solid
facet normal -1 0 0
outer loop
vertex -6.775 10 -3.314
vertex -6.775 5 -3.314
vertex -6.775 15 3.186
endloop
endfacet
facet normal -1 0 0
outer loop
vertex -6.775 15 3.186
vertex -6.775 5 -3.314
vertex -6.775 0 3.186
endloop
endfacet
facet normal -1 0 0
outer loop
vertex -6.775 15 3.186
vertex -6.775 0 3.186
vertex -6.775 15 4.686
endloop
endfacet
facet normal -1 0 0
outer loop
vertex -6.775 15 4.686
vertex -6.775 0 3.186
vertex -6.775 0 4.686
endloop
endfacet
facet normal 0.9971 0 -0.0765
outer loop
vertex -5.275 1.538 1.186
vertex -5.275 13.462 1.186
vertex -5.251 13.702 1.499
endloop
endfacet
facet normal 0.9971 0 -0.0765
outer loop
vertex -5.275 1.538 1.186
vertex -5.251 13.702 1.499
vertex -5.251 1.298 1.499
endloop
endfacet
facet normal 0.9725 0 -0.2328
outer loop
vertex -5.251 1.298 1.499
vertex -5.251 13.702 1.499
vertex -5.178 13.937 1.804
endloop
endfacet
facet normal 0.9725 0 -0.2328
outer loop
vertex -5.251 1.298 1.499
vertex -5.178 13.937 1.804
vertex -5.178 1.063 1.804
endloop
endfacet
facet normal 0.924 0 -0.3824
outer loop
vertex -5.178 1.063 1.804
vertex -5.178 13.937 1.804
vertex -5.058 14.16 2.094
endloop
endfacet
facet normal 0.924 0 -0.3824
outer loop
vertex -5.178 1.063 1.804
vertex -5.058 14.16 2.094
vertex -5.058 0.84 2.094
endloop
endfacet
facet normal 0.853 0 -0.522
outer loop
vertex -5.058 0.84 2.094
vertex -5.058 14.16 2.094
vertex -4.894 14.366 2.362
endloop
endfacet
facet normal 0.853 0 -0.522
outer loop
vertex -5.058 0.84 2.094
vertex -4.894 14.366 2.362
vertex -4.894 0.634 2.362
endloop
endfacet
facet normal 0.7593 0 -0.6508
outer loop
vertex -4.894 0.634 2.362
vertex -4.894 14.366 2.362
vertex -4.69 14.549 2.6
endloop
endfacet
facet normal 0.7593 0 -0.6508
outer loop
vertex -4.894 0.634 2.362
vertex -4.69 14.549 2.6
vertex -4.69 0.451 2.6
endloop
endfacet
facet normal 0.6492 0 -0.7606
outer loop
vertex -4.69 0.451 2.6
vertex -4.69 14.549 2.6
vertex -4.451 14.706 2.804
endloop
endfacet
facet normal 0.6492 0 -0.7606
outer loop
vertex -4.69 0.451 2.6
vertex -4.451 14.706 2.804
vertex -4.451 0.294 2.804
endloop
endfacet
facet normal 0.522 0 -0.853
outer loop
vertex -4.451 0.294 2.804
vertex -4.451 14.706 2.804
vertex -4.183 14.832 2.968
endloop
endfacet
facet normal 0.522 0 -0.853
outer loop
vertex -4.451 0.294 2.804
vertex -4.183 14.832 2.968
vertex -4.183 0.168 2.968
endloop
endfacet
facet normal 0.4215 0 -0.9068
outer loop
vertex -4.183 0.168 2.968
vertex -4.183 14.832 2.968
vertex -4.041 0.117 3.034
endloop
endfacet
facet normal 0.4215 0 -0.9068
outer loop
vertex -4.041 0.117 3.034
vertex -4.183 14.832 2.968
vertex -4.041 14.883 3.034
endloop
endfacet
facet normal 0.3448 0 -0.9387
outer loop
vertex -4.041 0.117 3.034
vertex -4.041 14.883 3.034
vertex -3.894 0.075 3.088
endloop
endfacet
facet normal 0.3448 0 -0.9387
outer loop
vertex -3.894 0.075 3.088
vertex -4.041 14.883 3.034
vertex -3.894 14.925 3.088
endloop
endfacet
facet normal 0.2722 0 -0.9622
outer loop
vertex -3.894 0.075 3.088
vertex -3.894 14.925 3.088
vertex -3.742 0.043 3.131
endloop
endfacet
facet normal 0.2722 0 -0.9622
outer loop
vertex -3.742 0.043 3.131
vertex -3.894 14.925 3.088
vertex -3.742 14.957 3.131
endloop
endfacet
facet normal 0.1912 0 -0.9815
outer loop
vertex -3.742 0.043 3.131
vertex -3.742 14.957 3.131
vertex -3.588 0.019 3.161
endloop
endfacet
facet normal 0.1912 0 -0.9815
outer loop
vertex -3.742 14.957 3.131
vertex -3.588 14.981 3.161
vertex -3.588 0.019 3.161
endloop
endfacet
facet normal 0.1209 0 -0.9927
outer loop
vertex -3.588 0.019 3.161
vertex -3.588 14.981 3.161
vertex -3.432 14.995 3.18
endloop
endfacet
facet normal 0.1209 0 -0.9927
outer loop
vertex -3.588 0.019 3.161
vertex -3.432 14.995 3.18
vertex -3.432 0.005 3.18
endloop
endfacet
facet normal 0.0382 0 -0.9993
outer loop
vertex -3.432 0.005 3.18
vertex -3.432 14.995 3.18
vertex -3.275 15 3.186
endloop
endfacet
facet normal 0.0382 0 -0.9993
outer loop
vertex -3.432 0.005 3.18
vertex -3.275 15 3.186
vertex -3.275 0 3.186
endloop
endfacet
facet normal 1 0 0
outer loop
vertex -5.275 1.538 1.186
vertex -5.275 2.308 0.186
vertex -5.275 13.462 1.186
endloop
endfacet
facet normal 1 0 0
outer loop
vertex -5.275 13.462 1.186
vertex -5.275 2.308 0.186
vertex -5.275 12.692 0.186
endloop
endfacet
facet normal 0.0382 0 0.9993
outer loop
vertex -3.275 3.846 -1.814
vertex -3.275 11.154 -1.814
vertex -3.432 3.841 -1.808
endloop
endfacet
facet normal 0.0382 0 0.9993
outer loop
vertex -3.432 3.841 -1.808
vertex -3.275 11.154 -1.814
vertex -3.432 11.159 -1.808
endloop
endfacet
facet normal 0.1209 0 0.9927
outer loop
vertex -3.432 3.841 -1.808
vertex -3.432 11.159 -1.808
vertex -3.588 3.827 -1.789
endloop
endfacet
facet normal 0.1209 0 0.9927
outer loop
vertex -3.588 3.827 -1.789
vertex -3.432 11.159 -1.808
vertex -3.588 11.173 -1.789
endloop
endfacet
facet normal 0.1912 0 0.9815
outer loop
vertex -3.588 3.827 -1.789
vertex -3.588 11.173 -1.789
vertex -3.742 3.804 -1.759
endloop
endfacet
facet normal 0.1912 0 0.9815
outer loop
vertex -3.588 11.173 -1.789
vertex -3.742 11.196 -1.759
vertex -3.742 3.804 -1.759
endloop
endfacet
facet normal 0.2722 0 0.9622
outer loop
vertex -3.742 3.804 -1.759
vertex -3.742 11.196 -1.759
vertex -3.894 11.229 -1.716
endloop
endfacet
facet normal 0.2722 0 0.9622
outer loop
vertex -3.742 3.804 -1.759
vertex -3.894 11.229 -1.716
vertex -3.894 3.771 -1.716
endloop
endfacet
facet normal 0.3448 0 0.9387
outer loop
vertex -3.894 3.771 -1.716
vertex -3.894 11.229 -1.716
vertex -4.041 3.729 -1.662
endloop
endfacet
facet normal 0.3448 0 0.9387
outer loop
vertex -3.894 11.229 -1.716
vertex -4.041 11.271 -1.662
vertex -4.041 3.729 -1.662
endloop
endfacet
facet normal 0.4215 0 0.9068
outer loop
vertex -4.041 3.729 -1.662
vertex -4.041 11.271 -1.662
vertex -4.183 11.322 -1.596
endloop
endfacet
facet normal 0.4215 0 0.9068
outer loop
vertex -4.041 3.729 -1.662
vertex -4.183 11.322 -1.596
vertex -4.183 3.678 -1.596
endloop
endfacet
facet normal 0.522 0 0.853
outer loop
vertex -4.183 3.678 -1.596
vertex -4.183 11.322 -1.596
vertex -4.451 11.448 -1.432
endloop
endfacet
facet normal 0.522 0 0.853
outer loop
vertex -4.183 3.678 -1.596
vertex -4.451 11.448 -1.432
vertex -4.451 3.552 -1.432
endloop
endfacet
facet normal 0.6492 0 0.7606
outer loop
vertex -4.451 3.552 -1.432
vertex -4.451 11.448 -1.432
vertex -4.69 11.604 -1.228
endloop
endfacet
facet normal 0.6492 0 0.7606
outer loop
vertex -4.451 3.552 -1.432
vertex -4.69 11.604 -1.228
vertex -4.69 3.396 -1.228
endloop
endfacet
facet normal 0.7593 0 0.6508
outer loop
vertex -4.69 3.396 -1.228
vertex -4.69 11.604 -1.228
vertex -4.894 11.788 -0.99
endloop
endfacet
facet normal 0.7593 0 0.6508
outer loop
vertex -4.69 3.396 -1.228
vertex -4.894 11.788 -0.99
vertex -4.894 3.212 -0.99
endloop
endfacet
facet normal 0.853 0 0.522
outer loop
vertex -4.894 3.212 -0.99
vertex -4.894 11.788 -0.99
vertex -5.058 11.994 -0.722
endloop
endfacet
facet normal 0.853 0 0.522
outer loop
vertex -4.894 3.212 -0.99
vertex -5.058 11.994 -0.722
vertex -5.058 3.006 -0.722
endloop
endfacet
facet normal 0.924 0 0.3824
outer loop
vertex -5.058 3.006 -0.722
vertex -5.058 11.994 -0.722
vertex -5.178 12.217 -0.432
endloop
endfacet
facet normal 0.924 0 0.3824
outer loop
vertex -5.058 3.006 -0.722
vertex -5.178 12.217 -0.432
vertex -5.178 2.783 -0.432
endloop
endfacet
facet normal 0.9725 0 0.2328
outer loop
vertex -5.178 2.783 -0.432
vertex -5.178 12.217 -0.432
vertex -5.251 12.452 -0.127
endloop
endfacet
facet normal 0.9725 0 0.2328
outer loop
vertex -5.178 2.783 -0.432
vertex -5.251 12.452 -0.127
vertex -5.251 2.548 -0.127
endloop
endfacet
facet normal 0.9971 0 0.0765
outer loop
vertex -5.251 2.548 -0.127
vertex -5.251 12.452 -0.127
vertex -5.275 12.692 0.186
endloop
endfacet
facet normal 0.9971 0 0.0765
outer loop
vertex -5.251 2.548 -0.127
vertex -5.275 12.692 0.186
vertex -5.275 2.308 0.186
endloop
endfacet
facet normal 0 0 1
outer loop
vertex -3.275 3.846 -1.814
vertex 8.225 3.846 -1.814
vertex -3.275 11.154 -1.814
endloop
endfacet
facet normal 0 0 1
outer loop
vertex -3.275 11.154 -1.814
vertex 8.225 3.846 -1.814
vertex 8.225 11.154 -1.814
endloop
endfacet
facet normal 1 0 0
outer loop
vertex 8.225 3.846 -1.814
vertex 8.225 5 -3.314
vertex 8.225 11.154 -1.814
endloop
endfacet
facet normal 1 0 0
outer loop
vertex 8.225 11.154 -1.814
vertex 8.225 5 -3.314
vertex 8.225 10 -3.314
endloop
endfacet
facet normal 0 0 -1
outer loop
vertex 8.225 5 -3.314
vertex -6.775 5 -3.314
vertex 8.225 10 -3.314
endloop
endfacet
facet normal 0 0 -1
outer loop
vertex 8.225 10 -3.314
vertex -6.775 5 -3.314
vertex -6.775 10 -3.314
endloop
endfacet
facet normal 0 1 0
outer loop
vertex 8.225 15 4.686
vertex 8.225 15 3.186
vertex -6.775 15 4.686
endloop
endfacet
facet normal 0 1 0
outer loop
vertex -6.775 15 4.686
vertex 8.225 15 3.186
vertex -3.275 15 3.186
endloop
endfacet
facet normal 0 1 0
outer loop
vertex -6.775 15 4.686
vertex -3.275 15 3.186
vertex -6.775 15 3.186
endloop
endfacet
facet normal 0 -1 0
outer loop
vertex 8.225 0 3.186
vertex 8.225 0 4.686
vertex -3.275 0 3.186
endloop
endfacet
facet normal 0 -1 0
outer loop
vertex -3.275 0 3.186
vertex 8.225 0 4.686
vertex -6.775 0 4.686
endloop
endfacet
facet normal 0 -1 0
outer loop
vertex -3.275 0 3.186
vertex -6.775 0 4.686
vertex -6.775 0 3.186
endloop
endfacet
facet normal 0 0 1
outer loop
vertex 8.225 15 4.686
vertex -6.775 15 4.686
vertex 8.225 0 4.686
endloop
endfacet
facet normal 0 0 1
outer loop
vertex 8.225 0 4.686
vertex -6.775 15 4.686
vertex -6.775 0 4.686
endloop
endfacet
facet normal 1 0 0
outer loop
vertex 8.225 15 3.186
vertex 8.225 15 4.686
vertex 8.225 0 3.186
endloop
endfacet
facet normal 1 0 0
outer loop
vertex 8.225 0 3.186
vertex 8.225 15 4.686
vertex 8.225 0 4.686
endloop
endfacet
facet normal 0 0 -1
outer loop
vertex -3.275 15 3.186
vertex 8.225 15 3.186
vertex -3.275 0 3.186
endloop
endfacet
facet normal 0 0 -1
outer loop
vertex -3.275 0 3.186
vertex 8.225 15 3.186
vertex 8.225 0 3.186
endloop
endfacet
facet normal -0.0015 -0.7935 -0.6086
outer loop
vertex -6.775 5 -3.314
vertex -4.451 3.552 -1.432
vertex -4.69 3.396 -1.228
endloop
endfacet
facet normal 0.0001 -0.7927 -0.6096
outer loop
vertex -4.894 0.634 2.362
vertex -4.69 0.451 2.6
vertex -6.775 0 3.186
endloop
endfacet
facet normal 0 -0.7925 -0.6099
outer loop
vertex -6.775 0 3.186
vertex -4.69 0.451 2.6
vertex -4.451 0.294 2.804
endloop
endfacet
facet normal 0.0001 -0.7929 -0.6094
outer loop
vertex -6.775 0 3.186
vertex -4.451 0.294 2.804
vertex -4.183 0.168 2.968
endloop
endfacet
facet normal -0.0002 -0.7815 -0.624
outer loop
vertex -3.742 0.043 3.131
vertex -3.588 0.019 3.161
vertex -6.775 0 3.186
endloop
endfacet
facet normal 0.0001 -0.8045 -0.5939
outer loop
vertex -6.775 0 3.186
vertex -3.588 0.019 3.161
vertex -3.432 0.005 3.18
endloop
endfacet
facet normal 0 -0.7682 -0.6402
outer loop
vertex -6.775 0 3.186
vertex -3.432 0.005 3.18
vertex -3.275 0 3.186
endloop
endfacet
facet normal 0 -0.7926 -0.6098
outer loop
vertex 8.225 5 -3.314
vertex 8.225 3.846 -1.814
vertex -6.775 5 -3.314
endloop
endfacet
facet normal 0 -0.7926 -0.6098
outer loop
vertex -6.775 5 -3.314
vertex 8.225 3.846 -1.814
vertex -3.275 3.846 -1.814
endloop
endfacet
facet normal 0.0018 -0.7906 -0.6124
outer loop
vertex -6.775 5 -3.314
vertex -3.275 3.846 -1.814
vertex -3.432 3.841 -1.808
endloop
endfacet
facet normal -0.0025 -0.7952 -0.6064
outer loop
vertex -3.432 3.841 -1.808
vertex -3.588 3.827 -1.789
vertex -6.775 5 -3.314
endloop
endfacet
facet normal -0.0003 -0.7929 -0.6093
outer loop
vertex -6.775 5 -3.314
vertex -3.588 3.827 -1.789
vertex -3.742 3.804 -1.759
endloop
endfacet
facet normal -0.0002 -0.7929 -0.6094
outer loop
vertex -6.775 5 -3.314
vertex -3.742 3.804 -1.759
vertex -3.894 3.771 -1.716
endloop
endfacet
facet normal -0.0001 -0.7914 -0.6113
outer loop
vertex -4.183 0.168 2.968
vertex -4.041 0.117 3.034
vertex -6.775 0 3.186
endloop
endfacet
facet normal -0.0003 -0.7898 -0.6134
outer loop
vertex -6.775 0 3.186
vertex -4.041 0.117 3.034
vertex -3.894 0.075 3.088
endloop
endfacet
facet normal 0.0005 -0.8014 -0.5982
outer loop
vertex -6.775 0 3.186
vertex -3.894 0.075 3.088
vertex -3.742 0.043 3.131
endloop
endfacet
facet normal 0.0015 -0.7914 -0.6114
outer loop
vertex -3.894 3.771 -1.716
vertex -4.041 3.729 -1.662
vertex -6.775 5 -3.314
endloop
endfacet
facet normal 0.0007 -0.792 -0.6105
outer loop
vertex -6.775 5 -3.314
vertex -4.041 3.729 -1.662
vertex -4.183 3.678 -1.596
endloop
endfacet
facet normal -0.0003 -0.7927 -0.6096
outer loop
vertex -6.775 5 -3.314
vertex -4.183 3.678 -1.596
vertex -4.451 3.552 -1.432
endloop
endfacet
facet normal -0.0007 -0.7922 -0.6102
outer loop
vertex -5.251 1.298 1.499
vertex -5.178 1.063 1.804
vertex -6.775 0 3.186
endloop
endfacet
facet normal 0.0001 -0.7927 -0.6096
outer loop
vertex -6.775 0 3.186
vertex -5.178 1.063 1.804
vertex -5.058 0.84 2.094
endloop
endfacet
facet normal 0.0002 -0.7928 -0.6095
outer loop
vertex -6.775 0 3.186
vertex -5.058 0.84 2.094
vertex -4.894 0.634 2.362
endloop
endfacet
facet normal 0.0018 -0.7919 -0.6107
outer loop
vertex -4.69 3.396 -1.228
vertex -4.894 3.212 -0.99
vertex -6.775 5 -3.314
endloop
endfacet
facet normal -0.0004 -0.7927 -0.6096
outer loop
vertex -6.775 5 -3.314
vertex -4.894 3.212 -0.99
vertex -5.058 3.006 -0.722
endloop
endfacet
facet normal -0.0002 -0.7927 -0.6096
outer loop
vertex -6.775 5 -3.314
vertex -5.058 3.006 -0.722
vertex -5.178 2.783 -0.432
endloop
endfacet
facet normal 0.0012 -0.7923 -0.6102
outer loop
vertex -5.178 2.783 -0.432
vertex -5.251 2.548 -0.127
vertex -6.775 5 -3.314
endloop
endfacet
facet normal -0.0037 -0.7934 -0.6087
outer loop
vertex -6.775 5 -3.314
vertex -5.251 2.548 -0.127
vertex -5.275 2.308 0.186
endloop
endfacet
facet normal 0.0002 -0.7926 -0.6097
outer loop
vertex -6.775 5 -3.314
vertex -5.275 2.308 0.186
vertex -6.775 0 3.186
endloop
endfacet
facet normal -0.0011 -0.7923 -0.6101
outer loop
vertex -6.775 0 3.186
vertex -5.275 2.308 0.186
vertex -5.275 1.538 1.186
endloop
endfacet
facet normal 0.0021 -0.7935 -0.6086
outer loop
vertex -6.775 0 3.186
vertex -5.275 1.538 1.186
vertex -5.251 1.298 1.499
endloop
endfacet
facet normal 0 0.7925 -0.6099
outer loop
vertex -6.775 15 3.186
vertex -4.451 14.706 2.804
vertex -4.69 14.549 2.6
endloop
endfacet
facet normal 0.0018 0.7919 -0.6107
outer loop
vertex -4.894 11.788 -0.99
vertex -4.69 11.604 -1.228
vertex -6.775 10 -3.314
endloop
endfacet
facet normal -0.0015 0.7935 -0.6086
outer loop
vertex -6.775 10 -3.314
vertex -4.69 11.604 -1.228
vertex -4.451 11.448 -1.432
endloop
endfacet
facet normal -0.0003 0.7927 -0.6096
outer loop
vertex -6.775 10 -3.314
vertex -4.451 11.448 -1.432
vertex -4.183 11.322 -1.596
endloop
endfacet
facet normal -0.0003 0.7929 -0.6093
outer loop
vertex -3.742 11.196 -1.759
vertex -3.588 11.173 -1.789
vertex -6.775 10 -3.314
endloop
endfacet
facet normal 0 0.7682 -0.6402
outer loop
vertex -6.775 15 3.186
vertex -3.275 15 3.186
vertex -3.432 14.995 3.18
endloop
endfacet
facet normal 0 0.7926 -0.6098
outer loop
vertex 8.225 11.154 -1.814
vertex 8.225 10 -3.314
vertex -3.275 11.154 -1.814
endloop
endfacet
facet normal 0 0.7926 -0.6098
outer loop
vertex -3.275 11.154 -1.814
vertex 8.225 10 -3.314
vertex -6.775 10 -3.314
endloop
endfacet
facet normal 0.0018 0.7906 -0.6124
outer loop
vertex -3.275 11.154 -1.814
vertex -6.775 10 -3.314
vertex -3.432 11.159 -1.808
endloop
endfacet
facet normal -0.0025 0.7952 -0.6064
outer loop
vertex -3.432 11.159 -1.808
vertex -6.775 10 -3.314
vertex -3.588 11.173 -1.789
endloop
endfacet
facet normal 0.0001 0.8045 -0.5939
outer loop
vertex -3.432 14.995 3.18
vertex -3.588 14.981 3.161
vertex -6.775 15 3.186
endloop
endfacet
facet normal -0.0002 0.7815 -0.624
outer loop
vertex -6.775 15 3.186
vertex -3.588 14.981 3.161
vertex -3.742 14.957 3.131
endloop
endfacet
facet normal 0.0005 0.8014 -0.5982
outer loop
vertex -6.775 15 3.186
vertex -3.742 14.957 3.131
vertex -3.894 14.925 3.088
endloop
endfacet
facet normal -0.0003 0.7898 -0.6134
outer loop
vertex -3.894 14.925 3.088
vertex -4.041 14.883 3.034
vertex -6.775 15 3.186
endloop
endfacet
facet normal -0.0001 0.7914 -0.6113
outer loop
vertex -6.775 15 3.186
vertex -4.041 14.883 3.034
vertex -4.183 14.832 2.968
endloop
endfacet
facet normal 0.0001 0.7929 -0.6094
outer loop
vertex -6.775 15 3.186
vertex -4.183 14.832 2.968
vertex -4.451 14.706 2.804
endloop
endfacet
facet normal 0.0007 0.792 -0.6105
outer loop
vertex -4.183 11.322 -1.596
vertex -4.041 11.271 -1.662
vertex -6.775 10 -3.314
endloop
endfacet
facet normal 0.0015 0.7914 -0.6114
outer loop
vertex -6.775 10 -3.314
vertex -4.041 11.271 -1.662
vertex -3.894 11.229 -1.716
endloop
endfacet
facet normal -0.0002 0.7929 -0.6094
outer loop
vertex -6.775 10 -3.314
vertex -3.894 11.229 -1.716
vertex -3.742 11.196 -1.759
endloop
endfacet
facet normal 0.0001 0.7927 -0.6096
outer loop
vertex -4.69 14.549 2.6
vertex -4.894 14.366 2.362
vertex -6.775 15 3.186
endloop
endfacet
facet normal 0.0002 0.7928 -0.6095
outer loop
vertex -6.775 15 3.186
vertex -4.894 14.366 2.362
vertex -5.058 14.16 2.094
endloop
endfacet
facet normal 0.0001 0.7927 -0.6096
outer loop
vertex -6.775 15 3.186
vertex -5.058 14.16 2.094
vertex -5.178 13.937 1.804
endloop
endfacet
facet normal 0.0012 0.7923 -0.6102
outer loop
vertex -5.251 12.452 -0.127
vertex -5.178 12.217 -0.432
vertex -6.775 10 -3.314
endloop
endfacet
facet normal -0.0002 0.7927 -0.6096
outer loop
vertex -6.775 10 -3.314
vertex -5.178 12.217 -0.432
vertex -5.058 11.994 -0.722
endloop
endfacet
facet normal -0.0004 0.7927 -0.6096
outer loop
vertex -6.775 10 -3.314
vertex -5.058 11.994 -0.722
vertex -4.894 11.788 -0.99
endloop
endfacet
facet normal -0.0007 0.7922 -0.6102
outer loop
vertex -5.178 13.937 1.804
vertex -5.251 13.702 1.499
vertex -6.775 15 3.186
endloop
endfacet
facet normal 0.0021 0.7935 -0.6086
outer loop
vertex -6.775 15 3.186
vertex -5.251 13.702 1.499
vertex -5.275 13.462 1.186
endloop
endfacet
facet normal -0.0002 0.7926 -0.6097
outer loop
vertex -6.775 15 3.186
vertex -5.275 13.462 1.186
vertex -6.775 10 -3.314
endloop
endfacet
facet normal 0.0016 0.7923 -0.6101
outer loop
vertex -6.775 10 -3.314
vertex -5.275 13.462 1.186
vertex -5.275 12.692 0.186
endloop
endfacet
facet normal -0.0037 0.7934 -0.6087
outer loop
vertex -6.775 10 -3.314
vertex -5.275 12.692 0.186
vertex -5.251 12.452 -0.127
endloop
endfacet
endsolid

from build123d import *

# Parameters (mm, degrees)
BOSS_EXTRUDE1_DEPTH     = 15
CUT_EXTRUDE1_DEPTH      = 15
CUT_EXTRUDE1_DEPTH_BACK = 15


with BuildPart() as part:
    # Sketch1 → Boss-Extrude1 (new body)
    with BuildSketch(Plane(origin=(0, 0, 0), x_dir=(1, 0, 0), z_dir=(0, 1, 0))):
        with BuildLine():
            Line((-6.77549195, 3.313953488), (8.22450805, 3.313953488))
            Line((8.22450805, 3.313953488), (8.22450805, 1.813953488))
            Line((8.22450805, 1.813953488), (-3.27549195, 1.813953488))
            ThreePointArc((-3.27549195, 1.813953488), (-4.689705512, 1.228167051), (-5.27549195, -0.186046512))
            Line((-5.27549195, -0.186046512), (-5.27549195, -1.186046512))
            ThreePointArc((-5.27549195, -1.186046512), (-4.689705512, -2.600260074), (-3.27549195, -3.186046512))
            Line((-3.27549195, -3.186046512), (8.22450805, -3.186046512))
            Line((8.22450805, -3.186046512), (8.22450805, -4.686046512))
            Line((8.22450805, -4.686046512), (-6.77549195, -4.686046512))
            Line((-6.77549195, -4.686046512), (-6.77549195, -3.186046512))
            Line((-6.77549195, -3.186046512), (-6.77549195, 1.813953488))
            Line((-6.77549195, 1.813953488), (-6.77549195, 3.313953488))
        make_face()
    extrude(amount=BOSS_EXTRUDE1_DEPTH)

    # Sketch2 → Cut-Extrude1 (cut, two sides: drawn at the far end of the back side and taken through both)
    with BuildSketch(Plane(origin=(0, 0, 0), x_dir=(0, 0, -1), z_dir=(1, 0, 0)).offset(-CUT_EXTRUDE1_DEPTH_BACK)):
        Polygon((-3.186046512, 15), (3.313953488, 10), (3.313953488, 5), (-3.186046512, 0), (5.545494288, -1.974836629), (16.327123692, 9.034309621), (5.033464235, 17.721739972), align=None)
    extrude(amount=CUT_EXTRUDE1_DEPTH + CUT_EXTRUDE1_DEPTH_BACK, mode=Mode.SUBTRACT)


solid = part.part
